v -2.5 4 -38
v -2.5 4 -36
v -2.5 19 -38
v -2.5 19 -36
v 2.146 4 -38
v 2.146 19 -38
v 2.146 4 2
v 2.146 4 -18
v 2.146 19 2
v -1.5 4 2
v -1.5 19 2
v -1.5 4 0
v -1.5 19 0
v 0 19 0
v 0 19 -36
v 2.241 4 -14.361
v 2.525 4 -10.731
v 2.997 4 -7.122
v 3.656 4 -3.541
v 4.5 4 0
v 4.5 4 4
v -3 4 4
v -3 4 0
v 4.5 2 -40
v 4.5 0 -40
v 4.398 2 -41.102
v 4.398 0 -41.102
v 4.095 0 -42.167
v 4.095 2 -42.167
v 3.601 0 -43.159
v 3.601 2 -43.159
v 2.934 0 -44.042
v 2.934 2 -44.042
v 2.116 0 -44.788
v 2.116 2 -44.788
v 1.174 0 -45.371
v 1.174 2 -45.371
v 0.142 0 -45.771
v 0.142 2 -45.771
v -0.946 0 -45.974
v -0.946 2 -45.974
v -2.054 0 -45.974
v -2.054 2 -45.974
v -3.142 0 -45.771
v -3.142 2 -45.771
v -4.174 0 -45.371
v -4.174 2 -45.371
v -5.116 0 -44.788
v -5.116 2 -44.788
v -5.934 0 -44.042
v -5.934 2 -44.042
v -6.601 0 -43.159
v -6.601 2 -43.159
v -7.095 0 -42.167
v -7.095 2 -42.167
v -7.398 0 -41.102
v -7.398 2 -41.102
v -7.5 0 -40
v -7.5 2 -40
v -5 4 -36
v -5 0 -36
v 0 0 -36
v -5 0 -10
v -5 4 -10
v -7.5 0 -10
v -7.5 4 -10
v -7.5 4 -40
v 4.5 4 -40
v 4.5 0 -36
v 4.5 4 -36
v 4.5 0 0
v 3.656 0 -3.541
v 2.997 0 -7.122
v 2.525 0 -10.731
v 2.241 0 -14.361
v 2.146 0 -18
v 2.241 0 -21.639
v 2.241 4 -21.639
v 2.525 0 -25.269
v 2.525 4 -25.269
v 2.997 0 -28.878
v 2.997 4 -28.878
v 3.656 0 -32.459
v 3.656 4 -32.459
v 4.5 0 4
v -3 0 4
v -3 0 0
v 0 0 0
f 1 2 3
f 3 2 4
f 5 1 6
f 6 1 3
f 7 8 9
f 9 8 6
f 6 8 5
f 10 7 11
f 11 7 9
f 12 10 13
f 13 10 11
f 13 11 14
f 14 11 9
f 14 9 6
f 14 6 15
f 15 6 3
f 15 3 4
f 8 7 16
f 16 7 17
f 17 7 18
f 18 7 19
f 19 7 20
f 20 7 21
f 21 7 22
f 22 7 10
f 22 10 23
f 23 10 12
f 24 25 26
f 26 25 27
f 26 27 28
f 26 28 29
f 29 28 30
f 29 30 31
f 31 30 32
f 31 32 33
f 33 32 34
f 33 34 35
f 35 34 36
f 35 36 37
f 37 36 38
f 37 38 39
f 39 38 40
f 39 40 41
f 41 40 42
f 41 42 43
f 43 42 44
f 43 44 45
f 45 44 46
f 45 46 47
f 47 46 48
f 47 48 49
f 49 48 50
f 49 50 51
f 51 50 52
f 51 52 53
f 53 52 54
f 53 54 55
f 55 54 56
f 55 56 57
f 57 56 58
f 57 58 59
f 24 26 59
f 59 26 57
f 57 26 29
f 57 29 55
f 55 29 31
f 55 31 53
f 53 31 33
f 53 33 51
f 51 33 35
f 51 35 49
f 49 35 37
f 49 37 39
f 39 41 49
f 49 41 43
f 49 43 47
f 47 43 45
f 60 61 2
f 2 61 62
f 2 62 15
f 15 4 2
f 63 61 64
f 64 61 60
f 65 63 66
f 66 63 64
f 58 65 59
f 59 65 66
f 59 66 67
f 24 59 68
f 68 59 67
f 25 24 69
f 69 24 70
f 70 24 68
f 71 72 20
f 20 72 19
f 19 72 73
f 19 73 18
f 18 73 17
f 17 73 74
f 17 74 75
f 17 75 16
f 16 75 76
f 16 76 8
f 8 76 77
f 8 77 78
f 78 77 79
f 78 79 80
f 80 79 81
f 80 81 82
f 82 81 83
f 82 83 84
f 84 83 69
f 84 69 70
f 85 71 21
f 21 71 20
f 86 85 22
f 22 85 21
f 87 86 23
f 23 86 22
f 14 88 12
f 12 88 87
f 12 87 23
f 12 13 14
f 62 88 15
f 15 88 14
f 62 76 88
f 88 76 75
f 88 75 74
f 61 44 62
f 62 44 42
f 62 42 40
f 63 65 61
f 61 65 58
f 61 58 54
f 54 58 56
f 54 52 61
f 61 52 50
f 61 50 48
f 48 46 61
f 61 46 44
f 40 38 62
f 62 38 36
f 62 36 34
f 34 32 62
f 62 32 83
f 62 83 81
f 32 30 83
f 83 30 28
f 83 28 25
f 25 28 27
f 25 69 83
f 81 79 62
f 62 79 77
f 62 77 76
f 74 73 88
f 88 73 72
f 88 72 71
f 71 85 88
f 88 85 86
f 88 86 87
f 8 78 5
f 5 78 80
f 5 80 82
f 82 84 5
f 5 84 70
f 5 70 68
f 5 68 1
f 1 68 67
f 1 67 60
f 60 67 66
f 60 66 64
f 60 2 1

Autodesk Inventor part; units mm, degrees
ref_plane "YZ Plane" through (0, 0, 0) normal (1, 0, 0) x (0, 1, 0)
ref_plane "XZ Plane" through (0, 0, 0) normal (0, 1, 0) x (-1, 0, 0)
ref_plane "XY Plane" through (0, 0, 0) normal (0, 0, 1) x (1, 0, 0)
sketch "Sketch1" plane through (0, 0, 0) normal (0, 1, 0) x (-1, 0, 0)
  line L0 (0, 0) -> (0, -36)
  line L1 (0, -36) -> (5, -36)
  line L2 (7.5, -40) -> (-4.5, -40)
  line L3 (-4.5, -40) -> (-4.5, -36)
  arc A0 (-4.5, -36) -> (-4.5, 0) centre (-72.1461, -18) ccw
  line L4 (-4.5, 0) -> (-4.5, 4)
  line L5 (-4.5, 4) -> (3, 4)
  line L6 (3, 4) -> (3, 0)
  line L7 (3, 0) -> (0, 0)
  line L8 (7.5, -40) -> (7.5, -10)
  line L9 (7.5, -10) -> (5, -10)
  line L10 (5, -10) -> (5, -36)
  dimension "d0" = 36
  dimension "d1" = 5
  dimension "d4" = 12
  dimension "d6" = 70
  dimension "d7" = 4
  dimension "d8" = 7.5
  dimension "d20" = 30
extrude "Extrusion1" add sketch "Sketch1" along normal blind 4
sketch "Sketch2" plane through (0, 0, 0) normal (0, -1, 0) x (1, 0, 0)
  line L0 (-7.5, -40) -> (4.5, -40) projected
  arc A0 (-7.5, -40) -> (4.5, -40) centre (-1.5, -40) ccw
  line L1 (4.5, -40) -> (-7.5, -40)
  point P0 (0, 0)
extrude "Extrusion2" add sketch "Sketch2" against normal blind 2
sketch "Sketch3" plane through (0, 4, 0) normal (0, 1, 0) x (1, 0, 0)
  line L0 (0, 0) -> (-1.5, 0)
  line L1 (-3, 0) -> (0, 0) projected
  line L2 (-1.5, 0) -> (-1.5, -2)
  arc A0 (4.5, 36) -> (4.5, 0) centre (72.1461, 18) ccw projected
  line L3 (2.1461, 18) -> (2.1461, -2)
  line L4 (2.1461, -2) -> (-1.5, -2)
  line L5 (0, 36) -> (-5, 36) projected
  line L6 (-2.5, 36) -> (-2.5, 38)
  line L7 (2.1461, 18) -> (2.1461, 38)
  line L8 (2.1461, 38) -> (-2.5, 38)
  line L9 (0, 36) -> (0, 0) projected
  line L10 (0, 0) -> (0, 36)
  line L11 (0, 36) -> (-2.5, 36)
  dimension "d15" = 2
  dimension "d17" = 2
extrude "Extrusion3" add sketch "Sketch3" along normal blind 15
properties part number "sem2_plateclip"
